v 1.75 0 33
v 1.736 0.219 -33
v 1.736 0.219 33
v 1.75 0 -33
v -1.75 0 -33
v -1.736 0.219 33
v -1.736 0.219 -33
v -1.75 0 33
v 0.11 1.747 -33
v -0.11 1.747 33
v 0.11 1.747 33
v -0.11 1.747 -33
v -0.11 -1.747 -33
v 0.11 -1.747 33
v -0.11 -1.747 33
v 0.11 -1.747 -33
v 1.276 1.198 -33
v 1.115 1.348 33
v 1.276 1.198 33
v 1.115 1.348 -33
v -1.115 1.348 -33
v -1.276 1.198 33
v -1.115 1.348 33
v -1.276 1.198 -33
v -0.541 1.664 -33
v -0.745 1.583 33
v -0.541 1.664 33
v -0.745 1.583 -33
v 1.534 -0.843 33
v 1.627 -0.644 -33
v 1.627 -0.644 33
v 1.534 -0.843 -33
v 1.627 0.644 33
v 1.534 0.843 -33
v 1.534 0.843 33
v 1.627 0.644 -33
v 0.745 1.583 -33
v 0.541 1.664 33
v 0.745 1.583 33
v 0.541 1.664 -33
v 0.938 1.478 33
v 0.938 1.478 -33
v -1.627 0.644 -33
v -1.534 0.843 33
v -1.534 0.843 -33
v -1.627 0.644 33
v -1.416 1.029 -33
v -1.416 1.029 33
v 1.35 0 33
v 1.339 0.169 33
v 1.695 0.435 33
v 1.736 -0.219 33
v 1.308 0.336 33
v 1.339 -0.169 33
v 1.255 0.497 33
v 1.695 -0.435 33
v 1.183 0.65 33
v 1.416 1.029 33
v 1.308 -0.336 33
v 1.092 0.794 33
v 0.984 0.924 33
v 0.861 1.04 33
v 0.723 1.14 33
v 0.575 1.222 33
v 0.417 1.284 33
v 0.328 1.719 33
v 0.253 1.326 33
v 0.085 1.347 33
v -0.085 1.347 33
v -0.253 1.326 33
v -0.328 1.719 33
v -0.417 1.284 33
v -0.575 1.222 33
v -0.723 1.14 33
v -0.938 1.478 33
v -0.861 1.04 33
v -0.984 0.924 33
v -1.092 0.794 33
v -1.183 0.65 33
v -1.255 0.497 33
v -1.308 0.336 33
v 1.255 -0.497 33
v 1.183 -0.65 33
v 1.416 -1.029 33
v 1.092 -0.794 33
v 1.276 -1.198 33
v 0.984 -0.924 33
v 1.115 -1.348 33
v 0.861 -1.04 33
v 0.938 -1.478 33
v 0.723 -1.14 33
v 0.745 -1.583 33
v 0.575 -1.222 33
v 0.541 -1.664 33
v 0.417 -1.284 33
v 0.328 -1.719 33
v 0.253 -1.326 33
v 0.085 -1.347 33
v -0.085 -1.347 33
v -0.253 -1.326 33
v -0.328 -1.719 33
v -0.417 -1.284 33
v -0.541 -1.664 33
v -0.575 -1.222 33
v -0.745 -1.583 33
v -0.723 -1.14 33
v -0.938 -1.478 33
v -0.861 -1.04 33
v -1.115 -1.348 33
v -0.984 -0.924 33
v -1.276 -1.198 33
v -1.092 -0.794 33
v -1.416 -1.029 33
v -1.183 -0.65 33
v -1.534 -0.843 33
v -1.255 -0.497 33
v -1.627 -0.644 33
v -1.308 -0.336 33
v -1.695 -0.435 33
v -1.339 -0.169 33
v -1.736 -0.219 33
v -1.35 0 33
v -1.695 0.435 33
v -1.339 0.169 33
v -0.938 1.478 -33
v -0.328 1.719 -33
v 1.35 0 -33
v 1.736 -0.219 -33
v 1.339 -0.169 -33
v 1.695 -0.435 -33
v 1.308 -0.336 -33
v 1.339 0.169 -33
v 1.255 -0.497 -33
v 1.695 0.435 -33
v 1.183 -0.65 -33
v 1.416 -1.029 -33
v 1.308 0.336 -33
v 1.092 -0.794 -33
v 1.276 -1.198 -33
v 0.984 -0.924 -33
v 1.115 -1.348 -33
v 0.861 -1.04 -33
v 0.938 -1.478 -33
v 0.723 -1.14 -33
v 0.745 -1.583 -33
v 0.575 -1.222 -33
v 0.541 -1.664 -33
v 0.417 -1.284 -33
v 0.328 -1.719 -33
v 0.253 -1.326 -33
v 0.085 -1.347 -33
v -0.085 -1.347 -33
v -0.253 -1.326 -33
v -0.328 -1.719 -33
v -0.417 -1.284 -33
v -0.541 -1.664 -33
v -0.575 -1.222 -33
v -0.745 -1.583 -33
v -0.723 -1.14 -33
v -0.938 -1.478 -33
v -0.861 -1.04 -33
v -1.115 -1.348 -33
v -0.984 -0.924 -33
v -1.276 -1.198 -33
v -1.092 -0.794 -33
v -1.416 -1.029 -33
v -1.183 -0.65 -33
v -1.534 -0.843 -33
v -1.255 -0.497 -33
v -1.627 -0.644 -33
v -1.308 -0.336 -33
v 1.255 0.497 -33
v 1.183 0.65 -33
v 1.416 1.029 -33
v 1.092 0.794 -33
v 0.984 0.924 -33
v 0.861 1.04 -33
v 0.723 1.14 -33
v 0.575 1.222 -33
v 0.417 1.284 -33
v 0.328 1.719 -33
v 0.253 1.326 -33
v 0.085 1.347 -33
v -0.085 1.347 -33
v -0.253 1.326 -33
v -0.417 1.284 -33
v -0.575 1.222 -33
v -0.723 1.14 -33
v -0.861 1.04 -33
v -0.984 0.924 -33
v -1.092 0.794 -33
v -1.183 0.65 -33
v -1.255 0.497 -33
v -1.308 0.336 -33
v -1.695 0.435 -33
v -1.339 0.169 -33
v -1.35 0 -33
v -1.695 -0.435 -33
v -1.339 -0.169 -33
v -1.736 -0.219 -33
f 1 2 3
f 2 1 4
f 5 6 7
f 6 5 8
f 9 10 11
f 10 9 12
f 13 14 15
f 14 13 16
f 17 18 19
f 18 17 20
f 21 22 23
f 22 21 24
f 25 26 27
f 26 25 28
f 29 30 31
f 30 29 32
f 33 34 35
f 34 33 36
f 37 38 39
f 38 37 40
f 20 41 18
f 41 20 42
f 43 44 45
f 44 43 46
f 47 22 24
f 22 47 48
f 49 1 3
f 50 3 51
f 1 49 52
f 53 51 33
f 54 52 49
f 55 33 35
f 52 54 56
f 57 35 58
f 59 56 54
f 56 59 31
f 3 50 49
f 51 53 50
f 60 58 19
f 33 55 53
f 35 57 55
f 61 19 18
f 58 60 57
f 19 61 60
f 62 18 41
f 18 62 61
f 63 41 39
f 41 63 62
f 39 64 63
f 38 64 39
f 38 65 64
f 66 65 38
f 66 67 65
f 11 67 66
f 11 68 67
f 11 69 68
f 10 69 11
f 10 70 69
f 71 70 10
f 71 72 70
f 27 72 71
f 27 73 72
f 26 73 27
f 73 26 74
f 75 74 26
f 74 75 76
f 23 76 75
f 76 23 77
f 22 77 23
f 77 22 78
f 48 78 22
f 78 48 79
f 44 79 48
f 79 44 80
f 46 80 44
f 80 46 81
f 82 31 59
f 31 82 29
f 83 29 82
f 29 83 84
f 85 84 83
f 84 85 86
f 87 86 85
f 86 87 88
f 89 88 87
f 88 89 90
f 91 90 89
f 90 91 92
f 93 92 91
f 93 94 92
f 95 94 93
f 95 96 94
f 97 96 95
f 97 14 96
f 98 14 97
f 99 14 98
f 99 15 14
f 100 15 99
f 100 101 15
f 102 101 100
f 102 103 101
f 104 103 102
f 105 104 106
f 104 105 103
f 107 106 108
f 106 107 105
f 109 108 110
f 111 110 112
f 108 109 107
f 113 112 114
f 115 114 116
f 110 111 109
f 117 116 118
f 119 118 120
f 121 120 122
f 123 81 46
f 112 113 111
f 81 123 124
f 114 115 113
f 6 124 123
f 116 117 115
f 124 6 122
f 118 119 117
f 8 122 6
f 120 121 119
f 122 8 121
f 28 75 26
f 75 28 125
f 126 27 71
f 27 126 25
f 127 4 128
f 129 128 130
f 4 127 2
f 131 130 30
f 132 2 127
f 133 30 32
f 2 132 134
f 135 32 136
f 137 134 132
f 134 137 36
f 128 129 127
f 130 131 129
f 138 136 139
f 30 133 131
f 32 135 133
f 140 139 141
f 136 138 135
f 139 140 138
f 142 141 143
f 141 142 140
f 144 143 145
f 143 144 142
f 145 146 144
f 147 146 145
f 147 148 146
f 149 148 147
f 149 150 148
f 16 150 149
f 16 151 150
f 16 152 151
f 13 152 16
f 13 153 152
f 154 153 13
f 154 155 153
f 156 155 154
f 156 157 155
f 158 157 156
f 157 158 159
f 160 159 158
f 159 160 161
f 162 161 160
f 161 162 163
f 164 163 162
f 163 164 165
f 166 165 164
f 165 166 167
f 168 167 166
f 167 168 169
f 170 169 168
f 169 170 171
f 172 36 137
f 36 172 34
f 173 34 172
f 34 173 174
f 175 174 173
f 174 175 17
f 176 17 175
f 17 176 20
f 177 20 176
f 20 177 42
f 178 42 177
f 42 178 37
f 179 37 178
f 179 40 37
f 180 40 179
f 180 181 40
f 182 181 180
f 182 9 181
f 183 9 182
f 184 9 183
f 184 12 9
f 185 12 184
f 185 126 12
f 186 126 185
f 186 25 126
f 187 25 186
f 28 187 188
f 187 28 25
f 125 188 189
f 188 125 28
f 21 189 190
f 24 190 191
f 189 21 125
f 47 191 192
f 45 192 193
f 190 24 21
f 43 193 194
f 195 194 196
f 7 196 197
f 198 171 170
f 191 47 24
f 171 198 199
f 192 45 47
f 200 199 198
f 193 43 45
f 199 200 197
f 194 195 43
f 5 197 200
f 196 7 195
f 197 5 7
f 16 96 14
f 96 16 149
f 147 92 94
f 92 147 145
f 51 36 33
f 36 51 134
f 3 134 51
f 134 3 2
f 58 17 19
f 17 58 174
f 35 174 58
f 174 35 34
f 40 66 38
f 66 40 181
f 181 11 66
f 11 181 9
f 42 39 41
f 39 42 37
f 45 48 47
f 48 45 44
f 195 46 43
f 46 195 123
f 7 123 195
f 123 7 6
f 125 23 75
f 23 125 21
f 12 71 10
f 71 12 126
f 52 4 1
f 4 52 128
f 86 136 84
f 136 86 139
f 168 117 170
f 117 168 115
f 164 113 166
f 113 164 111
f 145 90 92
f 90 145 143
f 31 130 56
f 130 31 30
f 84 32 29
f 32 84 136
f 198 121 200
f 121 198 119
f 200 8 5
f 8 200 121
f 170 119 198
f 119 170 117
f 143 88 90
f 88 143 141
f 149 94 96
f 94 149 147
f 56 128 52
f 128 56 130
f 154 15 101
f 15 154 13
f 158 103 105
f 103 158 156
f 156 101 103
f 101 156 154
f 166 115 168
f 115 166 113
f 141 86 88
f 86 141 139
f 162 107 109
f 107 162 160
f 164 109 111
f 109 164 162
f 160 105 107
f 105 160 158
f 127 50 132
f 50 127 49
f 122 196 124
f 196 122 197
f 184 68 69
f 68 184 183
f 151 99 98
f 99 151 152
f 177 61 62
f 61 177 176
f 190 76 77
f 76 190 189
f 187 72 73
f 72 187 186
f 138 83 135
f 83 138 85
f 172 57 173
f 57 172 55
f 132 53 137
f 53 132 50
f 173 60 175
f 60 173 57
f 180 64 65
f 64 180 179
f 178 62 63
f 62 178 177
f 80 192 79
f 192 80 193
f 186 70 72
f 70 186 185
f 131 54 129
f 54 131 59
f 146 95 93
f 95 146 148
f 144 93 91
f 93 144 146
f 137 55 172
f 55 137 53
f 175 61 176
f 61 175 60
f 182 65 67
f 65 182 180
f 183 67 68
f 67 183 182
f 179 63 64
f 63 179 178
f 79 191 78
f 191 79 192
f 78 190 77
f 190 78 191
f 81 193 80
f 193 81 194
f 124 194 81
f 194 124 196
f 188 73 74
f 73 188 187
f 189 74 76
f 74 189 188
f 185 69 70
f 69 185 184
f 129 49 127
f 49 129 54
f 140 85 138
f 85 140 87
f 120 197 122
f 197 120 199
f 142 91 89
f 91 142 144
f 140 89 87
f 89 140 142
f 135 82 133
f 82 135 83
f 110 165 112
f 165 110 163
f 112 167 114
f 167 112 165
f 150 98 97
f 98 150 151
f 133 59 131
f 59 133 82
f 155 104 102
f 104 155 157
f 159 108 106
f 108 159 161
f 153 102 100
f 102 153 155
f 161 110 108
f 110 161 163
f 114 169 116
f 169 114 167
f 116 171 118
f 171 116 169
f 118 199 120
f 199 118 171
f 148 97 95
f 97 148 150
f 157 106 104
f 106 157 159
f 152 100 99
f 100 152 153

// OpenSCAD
$fn = 50;


difference() {
	union() {
		translate(v = [0, 0, -33.0000000000]) {
			cylinder(h = 66, r = 1.7500000000);
		}
	}
	union() {
		translate(v = [0, 0, -100.0000000000]) {
			cylinder(h = 200, r = 1.3500000000);
		}
	}
}
